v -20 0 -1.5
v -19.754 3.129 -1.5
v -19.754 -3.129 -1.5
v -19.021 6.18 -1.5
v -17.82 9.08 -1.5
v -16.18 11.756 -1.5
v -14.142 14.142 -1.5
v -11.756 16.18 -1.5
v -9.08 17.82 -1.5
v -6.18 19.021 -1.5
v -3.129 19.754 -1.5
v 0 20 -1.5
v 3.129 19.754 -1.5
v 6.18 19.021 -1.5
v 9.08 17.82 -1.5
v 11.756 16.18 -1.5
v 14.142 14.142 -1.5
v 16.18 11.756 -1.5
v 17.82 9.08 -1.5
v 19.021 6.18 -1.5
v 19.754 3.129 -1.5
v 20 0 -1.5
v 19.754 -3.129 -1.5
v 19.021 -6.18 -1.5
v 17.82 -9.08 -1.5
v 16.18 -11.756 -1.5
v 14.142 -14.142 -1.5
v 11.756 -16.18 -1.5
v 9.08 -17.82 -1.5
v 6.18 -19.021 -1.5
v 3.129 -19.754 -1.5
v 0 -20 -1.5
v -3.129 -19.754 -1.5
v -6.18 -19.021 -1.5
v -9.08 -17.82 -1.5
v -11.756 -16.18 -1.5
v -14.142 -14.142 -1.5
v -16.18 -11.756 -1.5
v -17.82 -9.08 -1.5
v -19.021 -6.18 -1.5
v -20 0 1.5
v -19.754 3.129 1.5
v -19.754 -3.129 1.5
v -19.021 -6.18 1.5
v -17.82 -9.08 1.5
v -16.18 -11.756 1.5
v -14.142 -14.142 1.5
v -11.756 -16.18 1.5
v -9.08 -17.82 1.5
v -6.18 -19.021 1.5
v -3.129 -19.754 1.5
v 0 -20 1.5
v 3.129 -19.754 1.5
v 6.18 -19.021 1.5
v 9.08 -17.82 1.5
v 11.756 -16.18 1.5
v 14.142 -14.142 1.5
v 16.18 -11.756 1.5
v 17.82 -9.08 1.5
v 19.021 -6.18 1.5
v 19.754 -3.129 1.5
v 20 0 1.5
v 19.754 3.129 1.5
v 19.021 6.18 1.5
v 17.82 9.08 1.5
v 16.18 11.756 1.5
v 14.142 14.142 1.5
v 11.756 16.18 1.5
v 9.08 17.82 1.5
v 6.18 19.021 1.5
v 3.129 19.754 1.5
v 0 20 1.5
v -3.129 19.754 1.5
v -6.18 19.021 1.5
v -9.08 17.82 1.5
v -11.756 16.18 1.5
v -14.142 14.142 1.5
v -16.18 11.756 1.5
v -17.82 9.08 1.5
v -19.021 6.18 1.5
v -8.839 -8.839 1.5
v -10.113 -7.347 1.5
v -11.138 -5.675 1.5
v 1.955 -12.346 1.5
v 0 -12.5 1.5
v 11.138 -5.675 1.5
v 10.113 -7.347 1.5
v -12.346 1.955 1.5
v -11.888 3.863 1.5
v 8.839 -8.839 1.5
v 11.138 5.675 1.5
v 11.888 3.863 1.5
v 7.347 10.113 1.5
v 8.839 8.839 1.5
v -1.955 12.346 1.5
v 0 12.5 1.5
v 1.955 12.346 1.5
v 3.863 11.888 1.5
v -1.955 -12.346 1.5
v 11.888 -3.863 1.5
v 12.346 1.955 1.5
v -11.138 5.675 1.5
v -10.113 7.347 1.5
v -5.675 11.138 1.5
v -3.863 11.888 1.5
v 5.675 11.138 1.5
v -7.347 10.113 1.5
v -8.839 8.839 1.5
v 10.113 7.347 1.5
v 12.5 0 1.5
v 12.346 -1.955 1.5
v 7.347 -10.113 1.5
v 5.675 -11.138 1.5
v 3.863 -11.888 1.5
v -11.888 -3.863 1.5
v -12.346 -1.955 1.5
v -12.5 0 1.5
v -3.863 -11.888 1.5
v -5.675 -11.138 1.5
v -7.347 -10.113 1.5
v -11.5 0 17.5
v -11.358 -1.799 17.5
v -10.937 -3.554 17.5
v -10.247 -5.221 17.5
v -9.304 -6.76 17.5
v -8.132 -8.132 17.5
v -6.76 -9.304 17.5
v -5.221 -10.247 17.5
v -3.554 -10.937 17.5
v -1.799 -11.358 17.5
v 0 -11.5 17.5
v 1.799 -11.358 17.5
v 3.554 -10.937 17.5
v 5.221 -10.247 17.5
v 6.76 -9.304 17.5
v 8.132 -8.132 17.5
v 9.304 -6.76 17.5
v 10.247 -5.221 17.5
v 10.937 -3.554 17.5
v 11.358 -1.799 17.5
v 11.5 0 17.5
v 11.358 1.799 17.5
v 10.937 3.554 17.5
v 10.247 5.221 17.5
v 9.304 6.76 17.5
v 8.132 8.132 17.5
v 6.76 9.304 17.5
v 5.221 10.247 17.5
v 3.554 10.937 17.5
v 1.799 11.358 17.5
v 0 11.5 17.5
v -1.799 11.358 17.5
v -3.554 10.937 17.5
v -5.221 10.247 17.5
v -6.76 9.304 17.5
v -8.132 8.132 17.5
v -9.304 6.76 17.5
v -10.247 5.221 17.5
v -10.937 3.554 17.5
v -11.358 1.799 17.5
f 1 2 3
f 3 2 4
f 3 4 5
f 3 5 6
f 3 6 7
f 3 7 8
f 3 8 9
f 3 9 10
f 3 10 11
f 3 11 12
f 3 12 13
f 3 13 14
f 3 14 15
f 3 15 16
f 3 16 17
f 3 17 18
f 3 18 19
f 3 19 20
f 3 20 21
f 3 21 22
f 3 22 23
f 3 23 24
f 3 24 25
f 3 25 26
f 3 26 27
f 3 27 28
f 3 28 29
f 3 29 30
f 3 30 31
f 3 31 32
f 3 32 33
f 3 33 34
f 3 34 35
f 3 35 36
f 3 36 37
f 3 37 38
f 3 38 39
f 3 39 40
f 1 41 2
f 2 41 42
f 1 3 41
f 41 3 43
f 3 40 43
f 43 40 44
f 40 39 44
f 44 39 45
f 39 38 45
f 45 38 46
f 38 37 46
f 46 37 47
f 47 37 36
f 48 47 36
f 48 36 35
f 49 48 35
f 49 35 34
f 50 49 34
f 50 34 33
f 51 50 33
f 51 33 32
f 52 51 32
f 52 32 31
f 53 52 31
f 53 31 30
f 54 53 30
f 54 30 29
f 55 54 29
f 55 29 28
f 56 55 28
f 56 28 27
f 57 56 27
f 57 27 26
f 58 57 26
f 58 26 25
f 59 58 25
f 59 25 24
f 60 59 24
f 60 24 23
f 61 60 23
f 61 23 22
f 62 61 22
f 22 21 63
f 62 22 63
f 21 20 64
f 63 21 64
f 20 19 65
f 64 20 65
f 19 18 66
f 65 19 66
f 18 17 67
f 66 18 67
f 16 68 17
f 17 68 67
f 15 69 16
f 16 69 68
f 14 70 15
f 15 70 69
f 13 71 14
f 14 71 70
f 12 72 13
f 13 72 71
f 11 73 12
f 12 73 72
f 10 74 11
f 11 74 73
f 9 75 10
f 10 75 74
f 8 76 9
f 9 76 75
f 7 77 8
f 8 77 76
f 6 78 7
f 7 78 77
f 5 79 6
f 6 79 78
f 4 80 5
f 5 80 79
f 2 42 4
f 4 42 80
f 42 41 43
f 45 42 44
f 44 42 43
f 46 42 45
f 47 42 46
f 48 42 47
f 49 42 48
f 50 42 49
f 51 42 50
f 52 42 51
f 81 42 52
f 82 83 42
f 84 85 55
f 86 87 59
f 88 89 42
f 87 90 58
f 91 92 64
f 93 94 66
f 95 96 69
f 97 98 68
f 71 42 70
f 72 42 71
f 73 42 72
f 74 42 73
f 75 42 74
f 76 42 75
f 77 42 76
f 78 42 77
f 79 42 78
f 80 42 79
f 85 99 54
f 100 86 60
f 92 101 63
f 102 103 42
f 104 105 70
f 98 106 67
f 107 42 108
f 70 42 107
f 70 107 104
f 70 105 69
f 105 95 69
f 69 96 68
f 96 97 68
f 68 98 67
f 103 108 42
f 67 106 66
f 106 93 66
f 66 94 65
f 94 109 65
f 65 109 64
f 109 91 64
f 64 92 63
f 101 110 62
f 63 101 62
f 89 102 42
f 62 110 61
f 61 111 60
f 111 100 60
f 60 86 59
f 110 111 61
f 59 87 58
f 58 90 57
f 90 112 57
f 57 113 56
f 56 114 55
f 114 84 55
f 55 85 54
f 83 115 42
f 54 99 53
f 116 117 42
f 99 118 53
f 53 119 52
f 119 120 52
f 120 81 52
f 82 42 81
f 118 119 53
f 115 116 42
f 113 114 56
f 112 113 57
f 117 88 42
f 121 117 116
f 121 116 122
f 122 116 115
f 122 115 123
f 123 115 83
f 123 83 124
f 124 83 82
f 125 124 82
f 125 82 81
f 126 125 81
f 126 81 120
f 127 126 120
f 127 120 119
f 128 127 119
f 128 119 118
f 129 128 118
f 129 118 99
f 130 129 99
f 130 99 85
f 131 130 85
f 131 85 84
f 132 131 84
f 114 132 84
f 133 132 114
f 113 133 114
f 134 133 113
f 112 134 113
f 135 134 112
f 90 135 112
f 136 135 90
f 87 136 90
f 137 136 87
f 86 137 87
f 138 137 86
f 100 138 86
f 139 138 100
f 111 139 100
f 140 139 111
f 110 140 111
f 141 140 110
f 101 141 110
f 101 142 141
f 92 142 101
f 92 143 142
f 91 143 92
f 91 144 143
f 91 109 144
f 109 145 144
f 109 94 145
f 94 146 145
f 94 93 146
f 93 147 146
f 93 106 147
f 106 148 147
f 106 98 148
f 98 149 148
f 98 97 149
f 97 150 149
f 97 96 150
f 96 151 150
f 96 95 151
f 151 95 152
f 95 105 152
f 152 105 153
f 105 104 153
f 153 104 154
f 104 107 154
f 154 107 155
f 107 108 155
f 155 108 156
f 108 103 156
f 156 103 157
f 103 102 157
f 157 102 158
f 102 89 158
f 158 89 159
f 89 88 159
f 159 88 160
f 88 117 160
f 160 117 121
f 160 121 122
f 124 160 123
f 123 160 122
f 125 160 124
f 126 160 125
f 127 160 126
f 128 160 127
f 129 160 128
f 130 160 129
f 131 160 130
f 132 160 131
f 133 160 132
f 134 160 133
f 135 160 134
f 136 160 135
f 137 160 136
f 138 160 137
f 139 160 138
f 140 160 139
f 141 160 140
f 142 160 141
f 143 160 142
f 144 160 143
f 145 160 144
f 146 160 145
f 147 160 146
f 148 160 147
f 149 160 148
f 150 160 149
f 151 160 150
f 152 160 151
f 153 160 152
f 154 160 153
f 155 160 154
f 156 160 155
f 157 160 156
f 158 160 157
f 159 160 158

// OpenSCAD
d_plug = 40;
h_plug = 3;
d1_hole = 25;
d2_hole = 23;
h_hole = 16;
$fn=40;

union() {
  cylinder(r=d_plug/2, h=h_plug, center=true);
  translate([0,0,h_plug/2]) cylinder(r1=d1_hole/2, r2=d2_hole/2, h=h_hole);
};
